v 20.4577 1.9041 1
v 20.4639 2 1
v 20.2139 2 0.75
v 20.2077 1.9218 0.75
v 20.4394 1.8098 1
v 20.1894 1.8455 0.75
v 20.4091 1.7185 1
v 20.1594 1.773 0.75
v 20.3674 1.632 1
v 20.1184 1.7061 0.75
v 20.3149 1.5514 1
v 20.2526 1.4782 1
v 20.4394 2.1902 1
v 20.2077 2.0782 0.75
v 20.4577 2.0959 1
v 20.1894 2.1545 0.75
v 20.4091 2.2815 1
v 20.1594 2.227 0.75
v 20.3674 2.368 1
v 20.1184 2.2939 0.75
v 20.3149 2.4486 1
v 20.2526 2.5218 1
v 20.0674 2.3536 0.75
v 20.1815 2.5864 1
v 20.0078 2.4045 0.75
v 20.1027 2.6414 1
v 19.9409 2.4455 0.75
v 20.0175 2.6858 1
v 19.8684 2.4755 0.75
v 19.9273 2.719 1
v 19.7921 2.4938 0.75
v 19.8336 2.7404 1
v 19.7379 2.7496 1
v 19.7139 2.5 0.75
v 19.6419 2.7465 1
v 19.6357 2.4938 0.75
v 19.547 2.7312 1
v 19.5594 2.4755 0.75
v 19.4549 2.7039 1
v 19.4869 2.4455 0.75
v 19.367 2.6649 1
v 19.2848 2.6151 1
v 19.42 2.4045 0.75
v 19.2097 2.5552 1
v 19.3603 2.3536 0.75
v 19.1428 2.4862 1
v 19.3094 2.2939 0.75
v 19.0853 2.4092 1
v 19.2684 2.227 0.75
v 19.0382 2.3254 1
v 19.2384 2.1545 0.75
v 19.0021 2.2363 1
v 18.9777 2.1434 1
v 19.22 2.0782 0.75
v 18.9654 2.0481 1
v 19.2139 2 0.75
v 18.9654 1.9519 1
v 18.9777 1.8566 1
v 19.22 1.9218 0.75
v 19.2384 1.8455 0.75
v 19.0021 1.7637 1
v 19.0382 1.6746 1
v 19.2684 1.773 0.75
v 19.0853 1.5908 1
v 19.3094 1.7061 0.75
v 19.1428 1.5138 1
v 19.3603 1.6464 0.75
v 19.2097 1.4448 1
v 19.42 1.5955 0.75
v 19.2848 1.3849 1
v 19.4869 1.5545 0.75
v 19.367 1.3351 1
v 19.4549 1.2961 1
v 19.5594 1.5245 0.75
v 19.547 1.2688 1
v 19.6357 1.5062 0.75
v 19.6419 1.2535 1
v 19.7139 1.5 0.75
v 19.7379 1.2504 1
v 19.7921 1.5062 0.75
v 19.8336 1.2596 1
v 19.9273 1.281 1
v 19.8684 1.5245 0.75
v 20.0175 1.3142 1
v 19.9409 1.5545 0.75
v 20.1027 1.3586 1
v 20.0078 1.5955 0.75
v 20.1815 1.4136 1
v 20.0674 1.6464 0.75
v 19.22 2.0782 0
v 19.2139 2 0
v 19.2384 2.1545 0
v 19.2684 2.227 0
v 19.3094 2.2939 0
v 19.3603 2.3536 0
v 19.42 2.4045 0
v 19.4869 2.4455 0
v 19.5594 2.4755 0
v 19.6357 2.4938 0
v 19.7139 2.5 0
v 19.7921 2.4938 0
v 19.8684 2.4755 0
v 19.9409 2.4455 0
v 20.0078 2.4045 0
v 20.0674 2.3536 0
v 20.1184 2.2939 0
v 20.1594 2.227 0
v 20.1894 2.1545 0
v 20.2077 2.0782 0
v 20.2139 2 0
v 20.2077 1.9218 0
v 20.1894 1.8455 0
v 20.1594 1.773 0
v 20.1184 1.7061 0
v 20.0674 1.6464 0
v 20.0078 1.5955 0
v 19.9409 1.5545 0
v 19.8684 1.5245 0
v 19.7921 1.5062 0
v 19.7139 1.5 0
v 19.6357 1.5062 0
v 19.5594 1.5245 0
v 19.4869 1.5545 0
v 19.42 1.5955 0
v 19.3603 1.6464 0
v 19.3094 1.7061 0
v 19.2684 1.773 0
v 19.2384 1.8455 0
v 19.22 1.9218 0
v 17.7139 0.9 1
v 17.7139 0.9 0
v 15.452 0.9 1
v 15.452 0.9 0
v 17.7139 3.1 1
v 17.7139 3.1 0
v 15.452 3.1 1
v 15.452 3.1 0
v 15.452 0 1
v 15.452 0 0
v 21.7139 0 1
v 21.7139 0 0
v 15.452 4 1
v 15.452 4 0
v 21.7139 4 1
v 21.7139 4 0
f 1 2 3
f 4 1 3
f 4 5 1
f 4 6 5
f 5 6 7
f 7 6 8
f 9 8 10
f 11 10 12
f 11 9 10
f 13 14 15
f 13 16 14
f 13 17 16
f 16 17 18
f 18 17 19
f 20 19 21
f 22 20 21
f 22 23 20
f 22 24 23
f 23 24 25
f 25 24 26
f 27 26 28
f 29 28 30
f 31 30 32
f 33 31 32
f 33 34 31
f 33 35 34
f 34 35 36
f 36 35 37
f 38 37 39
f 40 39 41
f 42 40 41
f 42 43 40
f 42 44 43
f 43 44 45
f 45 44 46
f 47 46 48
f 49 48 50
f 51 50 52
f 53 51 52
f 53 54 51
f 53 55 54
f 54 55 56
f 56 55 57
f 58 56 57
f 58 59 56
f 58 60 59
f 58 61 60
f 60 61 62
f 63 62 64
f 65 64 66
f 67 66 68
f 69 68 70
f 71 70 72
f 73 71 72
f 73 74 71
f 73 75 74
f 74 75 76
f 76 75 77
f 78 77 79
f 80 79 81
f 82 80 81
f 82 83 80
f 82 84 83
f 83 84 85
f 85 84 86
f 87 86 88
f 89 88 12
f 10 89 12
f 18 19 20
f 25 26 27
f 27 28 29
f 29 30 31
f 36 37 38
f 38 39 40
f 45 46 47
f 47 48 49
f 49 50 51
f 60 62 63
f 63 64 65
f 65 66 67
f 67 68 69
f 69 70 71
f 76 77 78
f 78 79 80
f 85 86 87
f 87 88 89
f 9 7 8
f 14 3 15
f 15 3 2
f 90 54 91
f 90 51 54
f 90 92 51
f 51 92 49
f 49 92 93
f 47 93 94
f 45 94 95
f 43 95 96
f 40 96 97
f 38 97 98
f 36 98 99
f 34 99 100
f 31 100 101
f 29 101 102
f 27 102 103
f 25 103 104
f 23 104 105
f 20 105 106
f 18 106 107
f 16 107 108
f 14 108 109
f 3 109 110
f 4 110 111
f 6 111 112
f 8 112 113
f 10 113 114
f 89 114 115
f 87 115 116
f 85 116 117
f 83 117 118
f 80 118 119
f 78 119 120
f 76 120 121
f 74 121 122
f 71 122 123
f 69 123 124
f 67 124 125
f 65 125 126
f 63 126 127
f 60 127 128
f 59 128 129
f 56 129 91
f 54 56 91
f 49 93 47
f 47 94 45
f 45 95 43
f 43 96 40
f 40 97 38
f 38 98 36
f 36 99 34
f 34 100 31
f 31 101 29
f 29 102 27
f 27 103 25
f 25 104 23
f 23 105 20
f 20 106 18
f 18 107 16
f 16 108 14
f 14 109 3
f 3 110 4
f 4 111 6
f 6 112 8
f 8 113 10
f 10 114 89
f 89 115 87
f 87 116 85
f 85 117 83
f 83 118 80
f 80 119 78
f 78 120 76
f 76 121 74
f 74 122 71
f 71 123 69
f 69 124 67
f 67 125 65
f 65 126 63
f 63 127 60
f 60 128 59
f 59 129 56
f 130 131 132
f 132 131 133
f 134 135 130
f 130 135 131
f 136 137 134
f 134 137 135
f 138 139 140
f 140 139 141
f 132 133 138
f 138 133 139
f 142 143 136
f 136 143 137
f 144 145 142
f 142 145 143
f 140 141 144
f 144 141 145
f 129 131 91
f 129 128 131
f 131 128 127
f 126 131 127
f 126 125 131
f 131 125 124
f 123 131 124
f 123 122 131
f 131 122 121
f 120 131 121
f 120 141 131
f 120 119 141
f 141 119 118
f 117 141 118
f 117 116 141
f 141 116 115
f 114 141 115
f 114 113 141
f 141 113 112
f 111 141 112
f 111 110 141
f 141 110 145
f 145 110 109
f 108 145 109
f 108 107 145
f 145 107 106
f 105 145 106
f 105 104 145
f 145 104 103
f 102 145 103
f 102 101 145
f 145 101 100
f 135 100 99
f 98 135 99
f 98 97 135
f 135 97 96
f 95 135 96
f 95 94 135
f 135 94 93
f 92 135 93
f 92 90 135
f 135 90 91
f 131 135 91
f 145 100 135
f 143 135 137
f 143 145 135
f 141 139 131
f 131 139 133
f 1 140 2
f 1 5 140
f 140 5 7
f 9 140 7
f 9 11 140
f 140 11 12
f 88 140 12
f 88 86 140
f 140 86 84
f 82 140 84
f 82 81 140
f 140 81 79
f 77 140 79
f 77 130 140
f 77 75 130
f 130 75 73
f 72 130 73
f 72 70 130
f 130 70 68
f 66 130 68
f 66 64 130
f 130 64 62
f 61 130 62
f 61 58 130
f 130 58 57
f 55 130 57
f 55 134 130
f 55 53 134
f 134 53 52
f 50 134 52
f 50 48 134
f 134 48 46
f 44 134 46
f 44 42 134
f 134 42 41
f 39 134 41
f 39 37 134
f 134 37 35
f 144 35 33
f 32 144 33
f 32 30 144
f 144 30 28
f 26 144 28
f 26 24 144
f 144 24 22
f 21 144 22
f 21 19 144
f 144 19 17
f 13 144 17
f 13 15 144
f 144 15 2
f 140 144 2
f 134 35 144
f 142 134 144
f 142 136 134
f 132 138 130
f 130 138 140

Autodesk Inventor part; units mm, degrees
ref_plane "YZ Plane" through (0, 0, 0) normal (1, 0, 0) x (0, 1, 0)
ref_plane "XZ Plane" through (0, 0, 0) normal (0, 1, 0) x (-1, 0, 0)
ref_plane "XY Plane" through (0, 0, 0) normal (0, 0, 1) x (1, 0, 0)
sketch "Skizze1" plane through (0, 0, 0) normal (0, 0, 1) x (1, 0, 0)
  line L0 (13.6139, 4) -> (13.6139, 0) projected
  line L1 (13.6139, 0) -> (30.3639, 0) projected
  line L2 (30.3639, 0) -> (30.3639, 4) projected
  line L3 (13.6139, 4) -> (30.3639, 4) projected
  circle A0 centre (16.6139, 2) radius 1.6 projected
  circle A1 centre (16.6139, 2) radius 1.1 projected
  line L4 (21.7139, 0) -> (21.7139, 4)
  line L5 (15.452, 4) -> (15.452, 3.1)
  line L6 (15.452, 3.1) -> (17.7139, 3.1)
  line L7 (17.7139, 3.1) -> (17.7139, 0.9)
  line L8 (17.7139, 0.9) -> (15.452, 0.9)
  line L9 (15.452, 0.9) -> (15.452, 0)
  point P0 (19.7139, 2)
  dimension "d0" = 4
  dimension "d1" = 2
  dimension "d2" = 2
  dimension "d18" = 6.2619
extrude "Extrusion1" add sketch "Skizze1" along normal blind 1 contours L3 L4 L1 L9 A0 L5 | A0 L8 L7 L6
sketch "Skizze3" plane through (0, 0, 1) normal (0, 0, 1) x (1, 0, 0)
  line L0 (21.7139, 4) -> (21.7139, 0) projected
  line L1 (15.452, 4) -> (21.7139, 4) projected
  point P0 (19.7139, 2)
  dimension "d7" = 2
  dimension "d8" = 2
hole "Bohrung1" at (19.7139, 2, 1) direction (0, 0, -1) diameter 1 end through all countersink diameter 1.5 countersink angle 90
properties part number "Gabel02"
